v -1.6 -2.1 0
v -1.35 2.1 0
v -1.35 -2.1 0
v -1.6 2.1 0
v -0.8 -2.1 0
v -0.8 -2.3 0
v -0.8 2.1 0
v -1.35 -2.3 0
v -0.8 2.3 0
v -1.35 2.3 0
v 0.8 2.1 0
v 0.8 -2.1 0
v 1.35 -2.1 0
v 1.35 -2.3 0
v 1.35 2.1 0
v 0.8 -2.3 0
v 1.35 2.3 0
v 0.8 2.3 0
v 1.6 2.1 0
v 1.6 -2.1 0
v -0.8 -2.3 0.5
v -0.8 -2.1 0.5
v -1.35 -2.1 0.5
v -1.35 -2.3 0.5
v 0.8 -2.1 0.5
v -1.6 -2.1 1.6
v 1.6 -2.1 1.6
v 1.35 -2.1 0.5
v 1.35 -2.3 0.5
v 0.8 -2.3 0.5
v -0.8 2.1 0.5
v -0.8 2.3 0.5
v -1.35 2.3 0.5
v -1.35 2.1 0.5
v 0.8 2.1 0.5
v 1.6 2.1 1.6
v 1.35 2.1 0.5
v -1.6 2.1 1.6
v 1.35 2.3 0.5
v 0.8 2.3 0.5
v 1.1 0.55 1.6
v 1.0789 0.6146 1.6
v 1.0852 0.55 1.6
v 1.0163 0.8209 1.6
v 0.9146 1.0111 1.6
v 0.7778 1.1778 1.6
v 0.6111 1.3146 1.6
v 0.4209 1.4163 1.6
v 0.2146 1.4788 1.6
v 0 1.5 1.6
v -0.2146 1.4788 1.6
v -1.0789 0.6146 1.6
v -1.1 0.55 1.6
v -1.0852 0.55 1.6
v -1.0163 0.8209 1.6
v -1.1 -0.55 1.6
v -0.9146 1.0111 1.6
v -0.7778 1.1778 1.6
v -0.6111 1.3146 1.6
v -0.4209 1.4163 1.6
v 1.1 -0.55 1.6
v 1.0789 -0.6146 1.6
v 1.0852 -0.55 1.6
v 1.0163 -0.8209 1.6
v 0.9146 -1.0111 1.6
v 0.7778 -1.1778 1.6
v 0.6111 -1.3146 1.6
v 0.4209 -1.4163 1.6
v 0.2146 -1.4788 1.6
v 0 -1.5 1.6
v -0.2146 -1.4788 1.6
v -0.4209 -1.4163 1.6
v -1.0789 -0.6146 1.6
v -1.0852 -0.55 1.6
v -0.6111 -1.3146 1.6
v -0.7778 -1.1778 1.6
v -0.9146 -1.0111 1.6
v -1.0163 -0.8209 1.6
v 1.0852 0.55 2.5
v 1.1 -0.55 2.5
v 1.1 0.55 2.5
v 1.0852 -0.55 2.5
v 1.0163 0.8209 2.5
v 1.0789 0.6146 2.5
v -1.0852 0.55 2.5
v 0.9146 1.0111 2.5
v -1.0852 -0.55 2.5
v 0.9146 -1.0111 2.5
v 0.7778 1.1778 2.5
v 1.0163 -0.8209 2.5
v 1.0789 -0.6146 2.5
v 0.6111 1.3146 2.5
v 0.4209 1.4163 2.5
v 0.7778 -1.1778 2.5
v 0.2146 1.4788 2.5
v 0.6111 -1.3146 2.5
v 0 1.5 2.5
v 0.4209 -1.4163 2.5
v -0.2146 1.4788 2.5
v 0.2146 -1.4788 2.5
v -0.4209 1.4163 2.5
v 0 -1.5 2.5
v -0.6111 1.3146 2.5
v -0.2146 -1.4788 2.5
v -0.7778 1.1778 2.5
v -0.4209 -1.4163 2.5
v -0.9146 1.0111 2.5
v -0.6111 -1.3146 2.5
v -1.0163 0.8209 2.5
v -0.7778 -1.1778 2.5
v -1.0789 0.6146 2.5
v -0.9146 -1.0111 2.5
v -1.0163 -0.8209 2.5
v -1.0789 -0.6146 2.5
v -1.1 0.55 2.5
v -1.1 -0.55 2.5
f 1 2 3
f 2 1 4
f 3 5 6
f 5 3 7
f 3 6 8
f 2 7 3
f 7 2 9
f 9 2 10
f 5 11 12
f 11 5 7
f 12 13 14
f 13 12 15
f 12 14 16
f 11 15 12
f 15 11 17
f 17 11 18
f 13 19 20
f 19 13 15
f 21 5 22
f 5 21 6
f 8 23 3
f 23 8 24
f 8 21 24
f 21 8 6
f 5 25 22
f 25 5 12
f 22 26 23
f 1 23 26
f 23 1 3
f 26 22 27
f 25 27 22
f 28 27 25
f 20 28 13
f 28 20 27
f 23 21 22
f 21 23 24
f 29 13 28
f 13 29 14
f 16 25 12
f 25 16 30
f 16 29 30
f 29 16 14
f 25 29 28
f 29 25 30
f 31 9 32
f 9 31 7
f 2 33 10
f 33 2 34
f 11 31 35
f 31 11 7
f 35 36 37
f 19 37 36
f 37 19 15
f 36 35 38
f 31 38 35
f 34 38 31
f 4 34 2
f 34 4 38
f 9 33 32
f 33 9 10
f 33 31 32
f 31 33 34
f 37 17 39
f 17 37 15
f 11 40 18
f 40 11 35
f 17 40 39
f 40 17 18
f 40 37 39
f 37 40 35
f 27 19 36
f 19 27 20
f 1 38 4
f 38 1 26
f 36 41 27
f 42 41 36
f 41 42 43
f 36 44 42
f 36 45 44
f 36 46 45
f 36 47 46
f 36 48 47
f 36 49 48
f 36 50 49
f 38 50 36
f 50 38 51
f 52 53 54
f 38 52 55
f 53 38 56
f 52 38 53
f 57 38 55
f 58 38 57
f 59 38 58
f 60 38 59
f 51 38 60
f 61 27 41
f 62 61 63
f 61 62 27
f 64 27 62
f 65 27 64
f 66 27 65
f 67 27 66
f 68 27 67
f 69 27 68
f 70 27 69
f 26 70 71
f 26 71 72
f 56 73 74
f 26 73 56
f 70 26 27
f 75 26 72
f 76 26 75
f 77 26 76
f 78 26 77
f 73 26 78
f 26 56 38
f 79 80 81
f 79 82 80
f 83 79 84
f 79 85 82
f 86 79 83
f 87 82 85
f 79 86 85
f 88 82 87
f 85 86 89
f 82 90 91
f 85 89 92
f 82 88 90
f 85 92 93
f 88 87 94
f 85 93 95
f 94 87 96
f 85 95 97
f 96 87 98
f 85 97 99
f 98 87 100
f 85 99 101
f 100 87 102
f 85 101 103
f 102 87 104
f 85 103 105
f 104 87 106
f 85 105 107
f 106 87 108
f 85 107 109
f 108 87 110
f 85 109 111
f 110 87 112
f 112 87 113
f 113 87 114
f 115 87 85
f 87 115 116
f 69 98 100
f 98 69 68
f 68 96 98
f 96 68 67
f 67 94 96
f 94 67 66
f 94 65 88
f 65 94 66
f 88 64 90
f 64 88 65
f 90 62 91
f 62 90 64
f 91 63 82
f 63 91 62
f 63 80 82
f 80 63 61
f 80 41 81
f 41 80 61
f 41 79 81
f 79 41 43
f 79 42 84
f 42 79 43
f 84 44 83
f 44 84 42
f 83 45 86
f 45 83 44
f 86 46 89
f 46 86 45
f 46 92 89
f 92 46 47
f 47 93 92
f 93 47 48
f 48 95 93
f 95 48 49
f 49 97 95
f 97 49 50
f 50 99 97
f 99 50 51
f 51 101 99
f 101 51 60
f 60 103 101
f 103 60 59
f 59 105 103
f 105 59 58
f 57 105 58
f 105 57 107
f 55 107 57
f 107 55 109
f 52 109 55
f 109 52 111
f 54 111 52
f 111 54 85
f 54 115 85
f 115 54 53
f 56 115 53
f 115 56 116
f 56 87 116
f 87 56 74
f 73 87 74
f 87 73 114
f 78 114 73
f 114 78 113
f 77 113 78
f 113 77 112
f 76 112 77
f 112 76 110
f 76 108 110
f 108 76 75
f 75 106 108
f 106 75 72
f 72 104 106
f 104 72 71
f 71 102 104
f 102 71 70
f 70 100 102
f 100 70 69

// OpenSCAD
echo(version=version());
$fn=32;
color("black")
    linear_extrude(1.6)
        square([3.2,4.2], center=true);

color("red"){

    linear_extrude(2.5) {
        translate([0,0.4,0])
            circle(1.1);

        translate([0,-0.4,0])
            circle(1.1);
    
        square([2.2,1.1], center=true);
    }
}
        
color("silver") {
    pinLength = (2.7-1.6)/2;
    pinWidth = (4.6-4.2)/2;
    for (i = [-2.1-pinWidth/2,2.1+pinWidth/2], j = [-(1.6+pinLength)/2,(1.6+pinLength)/2]){
    translate([j,i,0])
        linear_extrude(0.5)
            square([pinLength,pinWidth], center=true);

    }
 
    
    
}
